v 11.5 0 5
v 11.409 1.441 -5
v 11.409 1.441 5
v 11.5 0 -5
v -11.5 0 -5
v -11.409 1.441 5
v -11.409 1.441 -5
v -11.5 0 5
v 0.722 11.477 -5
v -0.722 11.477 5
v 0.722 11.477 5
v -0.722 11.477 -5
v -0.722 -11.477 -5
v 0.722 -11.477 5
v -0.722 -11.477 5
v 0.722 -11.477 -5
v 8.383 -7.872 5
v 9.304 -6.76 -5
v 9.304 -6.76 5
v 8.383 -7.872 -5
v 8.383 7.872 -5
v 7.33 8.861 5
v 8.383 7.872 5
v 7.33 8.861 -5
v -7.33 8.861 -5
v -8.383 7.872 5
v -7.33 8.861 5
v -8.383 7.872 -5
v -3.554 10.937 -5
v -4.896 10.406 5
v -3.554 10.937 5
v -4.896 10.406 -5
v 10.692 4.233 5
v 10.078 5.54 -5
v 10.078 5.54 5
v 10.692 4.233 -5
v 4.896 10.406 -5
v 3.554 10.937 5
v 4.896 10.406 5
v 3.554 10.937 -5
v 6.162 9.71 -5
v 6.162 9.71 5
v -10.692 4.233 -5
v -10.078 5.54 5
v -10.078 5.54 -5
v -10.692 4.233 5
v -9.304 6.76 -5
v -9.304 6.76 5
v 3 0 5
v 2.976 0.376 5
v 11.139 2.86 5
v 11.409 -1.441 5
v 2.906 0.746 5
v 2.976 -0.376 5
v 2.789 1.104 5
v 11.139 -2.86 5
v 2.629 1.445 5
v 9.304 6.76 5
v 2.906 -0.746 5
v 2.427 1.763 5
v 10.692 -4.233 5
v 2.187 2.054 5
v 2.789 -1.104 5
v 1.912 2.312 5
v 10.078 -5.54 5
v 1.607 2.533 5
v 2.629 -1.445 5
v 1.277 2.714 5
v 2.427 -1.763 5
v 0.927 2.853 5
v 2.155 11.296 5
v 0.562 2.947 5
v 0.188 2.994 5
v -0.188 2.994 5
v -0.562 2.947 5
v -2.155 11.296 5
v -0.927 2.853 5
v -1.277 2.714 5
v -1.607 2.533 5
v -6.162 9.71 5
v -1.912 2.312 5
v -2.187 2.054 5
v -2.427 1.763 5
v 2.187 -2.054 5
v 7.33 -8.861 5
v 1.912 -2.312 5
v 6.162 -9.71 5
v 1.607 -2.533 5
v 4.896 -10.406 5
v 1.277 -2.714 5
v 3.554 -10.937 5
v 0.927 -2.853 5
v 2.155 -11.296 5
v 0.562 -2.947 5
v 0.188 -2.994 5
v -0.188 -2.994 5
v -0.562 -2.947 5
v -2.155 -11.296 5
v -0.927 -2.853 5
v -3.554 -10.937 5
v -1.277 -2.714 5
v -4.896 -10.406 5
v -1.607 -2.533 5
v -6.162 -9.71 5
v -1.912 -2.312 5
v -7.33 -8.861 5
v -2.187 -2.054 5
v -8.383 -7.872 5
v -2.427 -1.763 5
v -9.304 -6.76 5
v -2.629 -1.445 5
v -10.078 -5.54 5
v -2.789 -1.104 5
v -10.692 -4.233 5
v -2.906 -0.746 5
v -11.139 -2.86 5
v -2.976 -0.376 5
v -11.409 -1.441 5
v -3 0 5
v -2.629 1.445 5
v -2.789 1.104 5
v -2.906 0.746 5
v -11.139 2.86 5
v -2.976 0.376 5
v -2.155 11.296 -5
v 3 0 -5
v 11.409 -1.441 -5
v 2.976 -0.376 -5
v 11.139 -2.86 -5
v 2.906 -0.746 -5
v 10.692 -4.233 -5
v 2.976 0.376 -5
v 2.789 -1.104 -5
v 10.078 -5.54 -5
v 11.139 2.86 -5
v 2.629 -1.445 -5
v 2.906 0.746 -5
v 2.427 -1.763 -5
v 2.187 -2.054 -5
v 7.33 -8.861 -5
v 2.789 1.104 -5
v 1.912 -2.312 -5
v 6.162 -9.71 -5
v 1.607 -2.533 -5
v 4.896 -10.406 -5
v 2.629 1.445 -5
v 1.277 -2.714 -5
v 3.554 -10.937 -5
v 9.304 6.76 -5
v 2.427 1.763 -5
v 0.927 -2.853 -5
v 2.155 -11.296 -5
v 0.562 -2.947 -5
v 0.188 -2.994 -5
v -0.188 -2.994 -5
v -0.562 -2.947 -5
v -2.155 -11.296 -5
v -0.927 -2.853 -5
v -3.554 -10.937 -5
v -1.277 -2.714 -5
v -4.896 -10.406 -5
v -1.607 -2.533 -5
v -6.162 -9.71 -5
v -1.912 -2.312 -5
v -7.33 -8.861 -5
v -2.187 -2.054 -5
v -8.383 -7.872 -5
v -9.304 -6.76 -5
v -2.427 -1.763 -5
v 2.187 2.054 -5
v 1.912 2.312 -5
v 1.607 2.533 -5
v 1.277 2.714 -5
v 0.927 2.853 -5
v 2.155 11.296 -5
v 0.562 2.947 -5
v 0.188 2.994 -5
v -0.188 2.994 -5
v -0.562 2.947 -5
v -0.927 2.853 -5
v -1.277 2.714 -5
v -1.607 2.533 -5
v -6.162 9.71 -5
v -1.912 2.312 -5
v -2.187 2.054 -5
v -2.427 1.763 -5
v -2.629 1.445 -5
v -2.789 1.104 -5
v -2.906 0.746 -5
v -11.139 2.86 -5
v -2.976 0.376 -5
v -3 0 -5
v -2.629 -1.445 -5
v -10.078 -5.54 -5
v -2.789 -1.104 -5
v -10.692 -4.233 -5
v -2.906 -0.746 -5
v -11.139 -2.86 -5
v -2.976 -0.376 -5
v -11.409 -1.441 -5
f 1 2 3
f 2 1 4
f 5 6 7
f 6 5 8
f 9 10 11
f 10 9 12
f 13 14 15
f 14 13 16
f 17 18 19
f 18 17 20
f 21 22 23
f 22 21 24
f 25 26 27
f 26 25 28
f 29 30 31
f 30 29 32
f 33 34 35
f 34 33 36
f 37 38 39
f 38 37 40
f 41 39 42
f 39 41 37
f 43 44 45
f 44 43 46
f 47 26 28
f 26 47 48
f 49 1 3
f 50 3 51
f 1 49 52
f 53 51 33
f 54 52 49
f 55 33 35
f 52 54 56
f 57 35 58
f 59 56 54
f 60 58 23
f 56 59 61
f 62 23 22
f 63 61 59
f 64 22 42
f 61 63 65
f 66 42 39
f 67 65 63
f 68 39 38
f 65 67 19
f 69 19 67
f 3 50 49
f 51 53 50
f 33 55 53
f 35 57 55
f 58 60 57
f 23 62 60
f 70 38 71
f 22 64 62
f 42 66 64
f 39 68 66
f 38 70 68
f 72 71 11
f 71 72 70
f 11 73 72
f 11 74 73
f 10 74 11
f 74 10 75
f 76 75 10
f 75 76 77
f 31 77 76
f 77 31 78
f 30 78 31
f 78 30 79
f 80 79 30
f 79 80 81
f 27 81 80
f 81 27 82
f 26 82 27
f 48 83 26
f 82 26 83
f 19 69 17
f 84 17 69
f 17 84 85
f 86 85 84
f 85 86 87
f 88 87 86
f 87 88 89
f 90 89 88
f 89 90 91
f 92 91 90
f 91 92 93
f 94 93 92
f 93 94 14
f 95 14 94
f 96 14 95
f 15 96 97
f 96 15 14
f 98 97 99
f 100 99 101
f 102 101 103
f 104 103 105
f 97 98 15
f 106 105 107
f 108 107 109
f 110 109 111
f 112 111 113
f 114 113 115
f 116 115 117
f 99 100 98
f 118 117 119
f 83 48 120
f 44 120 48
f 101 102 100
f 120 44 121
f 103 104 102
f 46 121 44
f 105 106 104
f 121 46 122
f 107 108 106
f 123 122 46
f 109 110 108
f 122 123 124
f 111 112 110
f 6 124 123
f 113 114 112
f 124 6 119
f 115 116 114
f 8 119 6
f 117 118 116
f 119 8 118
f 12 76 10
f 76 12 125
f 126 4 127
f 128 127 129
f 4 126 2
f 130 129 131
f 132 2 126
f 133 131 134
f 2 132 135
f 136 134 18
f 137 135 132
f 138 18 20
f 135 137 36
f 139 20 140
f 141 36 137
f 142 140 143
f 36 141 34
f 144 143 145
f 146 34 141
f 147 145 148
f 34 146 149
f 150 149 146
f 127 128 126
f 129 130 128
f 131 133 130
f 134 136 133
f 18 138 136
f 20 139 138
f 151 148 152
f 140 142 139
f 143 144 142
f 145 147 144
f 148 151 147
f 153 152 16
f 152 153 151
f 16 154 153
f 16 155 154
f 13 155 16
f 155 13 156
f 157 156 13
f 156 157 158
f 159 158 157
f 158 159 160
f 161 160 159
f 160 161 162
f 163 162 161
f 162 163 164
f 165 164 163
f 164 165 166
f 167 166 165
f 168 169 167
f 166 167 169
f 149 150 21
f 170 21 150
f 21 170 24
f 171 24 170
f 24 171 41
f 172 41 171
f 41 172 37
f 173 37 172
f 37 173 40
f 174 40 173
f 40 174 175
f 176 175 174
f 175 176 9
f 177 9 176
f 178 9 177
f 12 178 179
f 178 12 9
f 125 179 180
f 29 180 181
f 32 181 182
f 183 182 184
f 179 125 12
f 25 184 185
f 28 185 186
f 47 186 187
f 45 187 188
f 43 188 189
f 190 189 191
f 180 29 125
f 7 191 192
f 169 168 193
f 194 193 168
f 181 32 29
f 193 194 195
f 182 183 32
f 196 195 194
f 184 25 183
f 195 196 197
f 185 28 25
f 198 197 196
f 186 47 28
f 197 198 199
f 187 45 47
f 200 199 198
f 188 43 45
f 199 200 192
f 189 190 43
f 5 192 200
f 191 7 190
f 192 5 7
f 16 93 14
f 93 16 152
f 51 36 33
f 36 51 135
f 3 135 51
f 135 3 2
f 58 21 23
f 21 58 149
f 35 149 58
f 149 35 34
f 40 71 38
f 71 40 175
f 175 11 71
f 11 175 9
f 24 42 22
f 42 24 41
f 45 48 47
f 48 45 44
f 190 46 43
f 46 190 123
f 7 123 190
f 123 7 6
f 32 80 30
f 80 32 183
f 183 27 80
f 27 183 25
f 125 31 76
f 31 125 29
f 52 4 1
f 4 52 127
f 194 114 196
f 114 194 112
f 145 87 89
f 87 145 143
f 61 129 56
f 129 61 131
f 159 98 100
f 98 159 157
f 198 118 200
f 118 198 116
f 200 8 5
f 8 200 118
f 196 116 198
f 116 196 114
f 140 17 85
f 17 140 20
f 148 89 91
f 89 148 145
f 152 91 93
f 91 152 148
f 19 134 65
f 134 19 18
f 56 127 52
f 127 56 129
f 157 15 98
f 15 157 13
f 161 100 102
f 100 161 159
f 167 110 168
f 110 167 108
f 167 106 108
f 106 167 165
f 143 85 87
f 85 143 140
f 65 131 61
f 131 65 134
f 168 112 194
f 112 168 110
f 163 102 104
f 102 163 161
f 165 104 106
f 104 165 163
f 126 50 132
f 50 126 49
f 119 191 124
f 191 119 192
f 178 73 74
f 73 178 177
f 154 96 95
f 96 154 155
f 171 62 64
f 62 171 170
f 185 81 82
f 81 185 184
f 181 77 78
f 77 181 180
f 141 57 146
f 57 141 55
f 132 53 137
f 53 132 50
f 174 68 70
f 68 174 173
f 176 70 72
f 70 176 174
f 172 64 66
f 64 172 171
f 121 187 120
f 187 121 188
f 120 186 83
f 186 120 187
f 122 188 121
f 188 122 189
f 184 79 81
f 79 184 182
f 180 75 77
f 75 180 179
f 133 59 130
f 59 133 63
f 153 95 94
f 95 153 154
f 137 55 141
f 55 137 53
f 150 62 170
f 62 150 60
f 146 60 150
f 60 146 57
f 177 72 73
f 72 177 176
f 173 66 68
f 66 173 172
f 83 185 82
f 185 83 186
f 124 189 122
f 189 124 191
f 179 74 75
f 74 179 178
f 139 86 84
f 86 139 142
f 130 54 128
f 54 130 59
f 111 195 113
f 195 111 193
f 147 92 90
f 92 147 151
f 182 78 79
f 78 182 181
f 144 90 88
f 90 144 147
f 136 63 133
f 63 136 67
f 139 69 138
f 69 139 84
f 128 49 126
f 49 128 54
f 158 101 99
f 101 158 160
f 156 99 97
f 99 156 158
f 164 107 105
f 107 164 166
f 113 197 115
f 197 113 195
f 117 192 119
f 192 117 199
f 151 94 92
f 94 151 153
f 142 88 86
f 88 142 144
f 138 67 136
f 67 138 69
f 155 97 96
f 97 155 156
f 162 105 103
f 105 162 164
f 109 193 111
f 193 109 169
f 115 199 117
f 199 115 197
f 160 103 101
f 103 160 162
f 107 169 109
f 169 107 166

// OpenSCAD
$fn = 50;


difference() {
	union() {
		translate(v = [0, 0, -5.0000000000]) {
			cylinder(h = 10, r = 11.5000000000);
		}
	}
	union() {
		translate(v = [0, 0, -100.0000000000]) {
			cylinder(h = 200, r = 3);
		}
	}
}
